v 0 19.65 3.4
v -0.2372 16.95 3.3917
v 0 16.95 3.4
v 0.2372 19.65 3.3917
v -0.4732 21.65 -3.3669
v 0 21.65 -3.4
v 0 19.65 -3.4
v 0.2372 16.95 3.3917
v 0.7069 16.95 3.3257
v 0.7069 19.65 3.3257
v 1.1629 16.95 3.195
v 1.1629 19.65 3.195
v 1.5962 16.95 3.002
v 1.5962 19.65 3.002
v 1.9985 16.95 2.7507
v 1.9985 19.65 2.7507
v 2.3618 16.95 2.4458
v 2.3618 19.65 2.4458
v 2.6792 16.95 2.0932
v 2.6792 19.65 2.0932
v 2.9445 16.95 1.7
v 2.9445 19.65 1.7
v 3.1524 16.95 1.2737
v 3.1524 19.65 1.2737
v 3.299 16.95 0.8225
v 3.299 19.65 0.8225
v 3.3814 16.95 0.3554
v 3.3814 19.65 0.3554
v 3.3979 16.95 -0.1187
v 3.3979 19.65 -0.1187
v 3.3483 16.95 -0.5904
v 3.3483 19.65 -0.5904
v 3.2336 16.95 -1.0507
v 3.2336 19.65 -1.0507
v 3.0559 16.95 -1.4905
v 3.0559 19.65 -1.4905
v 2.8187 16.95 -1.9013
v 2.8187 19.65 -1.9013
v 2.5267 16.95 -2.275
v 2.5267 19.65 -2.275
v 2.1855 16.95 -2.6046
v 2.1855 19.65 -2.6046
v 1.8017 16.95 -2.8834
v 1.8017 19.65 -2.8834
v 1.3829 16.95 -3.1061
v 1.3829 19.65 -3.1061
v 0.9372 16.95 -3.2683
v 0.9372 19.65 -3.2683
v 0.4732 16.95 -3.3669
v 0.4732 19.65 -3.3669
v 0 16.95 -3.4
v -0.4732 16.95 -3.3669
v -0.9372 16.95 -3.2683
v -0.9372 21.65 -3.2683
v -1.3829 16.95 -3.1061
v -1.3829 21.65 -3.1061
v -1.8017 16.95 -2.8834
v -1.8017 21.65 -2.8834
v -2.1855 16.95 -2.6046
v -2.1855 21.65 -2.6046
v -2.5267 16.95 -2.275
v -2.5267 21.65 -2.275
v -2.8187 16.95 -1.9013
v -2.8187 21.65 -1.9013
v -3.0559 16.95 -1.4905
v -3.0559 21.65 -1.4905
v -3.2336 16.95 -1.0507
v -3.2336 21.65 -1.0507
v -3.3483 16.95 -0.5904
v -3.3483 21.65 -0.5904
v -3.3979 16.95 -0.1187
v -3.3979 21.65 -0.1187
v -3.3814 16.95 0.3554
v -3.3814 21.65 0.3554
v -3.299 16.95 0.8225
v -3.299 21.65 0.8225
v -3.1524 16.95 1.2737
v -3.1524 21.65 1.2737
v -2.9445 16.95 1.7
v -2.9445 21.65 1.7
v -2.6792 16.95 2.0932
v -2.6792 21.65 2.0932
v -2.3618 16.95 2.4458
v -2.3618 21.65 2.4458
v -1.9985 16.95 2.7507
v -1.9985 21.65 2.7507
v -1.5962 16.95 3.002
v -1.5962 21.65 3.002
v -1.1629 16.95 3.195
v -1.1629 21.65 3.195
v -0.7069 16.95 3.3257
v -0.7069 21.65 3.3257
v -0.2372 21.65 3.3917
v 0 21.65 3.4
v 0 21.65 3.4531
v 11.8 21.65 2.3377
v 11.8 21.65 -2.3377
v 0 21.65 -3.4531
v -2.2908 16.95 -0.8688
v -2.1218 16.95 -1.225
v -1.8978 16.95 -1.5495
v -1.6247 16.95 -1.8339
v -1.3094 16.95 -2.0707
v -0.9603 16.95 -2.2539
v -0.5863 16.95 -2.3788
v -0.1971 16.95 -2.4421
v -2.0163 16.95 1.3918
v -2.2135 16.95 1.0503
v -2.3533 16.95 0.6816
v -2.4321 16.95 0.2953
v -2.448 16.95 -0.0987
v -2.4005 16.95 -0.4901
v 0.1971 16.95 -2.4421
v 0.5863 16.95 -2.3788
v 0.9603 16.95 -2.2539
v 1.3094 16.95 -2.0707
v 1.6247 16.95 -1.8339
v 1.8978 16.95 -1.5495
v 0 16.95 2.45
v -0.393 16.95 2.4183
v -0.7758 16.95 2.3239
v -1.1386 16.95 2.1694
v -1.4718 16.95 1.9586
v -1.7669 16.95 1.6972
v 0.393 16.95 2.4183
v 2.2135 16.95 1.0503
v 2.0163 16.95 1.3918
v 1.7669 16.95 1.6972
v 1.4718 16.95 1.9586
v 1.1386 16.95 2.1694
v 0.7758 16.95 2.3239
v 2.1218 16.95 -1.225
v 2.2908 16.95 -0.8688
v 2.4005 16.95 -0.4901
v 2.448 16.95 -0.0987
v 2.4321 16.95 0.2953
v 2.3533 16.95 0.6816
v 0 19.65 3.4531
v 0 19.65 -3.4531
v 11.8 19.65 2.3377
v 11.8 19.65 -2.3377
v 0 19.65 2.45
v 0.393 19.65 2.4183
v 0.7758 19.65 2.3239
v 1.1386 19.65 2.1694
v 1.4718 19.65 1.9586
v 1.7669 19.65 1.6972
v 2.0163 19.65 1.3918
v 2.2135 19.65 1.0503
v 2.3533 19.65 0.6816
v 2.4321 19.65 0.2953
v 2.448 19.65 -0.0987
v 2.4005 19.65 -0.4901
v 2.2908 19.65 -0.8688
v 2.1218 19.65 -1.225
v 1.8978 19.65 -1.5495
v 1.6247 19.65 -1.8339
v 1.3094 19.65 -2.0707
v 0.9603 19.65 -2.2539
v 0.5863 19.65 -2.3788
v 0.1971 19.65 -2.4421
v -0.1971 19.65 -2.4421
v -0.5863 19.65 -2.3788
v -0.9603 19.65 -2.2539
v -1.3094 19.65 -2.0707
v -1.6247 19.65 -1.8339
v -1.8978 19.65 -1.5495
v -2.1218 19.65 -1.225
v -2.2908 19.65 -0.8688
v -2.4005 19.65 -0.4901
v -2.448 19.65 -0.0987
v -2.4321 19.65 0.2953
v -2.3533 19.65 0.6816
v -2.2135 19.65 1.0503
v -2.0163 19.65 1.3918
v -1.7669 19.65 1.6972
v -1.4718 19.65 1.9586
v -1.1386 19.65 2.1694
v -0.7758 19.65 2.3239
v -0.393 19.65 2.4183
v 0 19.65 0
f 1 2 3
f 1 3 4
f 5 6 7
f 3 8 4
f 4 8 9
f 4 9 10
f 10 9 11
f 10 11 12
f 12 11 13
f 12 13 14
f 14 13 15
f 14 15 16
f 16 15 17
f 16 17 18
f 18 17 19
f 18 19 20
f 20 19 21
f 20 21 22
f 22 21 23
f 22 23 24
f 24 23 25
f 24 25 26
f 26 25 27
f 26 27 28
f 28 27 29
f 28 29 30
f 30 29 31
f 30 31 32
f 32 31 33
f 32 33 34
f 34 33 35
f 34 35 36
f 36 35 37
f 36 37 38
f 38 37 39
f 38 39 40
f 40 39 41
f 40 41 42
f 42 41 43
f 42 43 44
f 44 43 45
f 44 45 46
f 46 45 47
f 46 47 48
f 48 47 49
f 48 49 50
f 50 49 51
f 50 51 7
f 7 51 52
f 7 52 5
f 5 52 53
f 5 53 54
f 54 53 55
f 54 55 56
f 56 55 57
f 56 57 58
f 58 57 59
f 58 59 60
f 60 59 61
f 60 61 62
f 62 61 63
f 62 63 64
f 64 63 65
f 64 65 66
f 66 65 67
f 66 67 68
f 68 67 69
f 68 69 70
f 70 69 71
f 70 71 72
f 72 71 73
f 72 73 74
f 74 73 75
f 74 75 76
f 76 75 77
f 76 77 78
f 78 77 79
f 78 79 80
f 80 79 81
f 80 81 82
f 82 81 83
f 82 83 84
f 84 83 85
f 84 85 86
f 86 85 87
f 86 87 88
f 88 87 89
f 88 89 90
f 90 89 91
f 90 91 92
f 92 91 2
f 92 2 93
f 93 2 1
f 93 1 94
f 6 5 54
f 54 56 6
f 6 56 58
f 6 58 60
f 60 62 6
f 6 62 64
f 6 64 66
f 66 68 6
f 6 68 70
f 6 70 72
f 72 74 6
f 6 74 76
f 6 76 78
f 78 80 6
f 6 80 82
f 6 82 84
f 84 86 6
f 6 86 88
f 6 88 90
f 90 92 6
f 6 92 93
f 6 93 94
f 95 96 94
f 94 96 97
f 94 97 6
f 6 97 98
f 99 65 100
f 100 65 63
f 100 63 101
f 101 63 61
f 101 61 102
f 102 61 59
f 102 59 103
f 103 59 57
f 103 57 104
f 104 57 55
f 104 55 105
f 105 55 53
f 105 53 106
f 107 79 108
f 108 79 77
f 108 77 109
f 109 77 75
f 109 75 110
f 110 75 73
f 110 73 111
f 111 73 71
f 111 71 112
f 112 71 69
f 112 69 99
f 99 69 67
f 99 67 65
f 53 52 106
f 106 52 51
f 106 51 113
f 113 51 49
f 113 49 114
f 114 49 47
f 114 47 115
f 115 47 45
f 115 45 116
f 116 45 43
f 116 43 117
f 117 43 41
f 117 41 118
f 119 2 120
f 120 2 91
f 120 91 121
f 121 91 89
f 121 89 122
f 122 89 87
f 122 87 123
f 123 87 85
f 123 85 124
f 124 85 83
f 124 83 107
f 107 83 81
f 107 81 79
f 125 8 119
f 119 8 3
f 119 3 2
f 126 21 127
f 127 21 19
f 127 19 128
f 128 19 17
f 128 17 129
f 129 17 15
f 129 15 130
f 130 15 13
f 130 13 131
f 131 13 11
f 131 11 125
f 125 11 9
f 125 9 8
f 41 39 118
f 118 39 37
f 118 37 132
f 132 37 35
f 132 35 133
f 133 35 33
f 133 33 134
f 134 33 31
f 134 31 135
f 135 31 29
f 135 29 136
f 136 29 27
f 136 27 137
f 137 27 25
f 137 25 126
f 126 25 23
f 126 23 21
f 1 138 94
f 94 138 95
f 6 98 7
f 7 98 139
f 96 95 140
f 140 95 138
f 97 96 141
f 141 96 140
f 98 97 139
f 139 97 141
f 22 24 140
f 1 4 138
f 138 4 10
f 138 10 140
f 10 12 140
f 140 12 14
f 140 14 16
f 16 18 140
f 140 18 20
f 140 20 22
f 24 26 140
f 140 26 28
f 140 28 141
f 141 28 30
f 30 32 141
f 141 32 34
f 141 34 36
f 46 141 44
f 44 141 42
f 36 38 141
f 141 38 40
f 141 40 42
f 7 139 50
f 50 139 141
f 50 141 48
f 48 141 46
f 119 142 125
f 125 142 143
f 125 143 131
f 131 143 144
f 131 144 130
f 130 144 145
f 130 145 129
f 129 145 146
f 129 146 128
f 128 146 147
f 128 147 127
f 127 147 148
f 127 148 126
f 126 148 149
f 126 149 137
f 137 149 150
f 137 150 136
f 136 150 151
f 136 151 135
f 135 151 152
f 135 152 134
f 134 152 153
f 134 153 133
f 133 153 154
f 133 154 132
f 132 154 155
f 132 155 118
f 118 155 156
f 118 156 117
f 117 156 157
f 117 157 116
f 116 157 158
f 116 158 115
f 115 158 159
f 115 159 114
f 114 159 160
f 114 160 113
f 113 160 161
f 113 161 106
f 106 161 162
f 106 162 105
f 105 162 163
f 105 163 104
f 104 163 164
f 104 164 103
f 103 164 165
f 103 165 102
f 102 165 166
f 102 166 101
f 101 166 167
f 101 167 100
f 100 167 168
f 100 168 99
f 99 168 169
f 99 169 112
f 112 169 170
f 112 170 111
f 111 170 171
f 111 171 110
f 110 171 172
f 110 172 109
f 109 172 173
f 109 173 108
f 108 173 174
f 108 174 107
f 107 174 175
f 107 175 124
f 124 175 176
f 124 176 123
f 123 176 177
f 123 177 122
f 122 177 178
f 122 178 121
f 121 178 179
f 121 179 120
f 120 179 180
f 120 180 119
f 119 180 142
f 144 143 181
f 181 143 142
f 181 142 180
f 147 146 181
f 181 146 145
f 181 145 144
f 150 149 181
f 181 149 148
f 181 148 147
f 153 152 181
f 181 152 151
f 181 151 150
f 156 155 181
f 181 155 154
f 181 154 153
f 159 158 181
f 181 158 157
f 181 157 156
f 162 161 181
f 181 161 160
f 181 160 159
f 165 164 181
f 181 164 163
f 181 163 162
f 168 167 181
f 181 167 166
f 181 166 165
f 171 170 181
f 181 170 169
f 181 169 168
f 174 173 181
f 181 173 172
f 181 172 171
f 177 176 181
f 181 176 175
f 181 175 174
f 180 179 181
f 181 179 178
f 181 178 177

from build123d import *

# Parameters (mm, degrees)
BOSS_EXTRUDE1_START = 19.3
SKETCH1_R           = 3.4
BOSS_EXTRUDE1_DEPTH = 2.35
BOSS_EXTRUDE2_START = 20.65
BOSS_EXTRUDE2_DEPTH = 1
CUT_EXTRUDE1_START  = 18.3
SKETCH3_R           = 2.45
CUT_EXTRUDE1_DEPTH  = 1.35


with BuildPart() as part:
    # Sketch1 → Boss-Extrude1 (new, symmetric)
    with BuildSketch(Plane(origin=(0, 0, 0), x_dir=(1, 0, 0), z_dir=(0, 1, 0)).offset(BOSS_EXTRUDE1_START)):
        with Locations(Location((0, 0, 0), (0, 0, 90))):
            Circle(SKETCH1_R)
    extrude(amount=BOSS_EXTRUDE1_DEPTH, both=True)

    # Sketch2 → Boss-Extrude2 (add, symmetric)
    with BuildSketch(Plane(origin=(0, 0, 0), x_dir=(1, 0, 0), z_dir=(0, 1, 0)).offset(BOSS_EXTRUDE2_START)):
        Polygon((0, 3.453116188), (11.8, 2.337687781), (11.8, -2.337687781), (0, -3.453116188), align=None)
    extrude(amount=BOSS_EXTRUDE2_DEPTH, both=True)

    # Sketch3 → Cut-Extrude1 (cut, symmetric)
    with BuildSketch(Plane(origin=(0, 0, 0), x_dir=(1, 0, 0), z_dir=(0, 1, 0)).offset(CUT_EXTRUDE1_START)):
        with Locations(Location((0, 0, 0), (0, 0, 270))):
            Circle(SKETCH3_R)
    extrude(amount=CUT_EXTRUDE1_DEPTH, both=True, mode=Mode.SUBTRACT)


solid = part.part
